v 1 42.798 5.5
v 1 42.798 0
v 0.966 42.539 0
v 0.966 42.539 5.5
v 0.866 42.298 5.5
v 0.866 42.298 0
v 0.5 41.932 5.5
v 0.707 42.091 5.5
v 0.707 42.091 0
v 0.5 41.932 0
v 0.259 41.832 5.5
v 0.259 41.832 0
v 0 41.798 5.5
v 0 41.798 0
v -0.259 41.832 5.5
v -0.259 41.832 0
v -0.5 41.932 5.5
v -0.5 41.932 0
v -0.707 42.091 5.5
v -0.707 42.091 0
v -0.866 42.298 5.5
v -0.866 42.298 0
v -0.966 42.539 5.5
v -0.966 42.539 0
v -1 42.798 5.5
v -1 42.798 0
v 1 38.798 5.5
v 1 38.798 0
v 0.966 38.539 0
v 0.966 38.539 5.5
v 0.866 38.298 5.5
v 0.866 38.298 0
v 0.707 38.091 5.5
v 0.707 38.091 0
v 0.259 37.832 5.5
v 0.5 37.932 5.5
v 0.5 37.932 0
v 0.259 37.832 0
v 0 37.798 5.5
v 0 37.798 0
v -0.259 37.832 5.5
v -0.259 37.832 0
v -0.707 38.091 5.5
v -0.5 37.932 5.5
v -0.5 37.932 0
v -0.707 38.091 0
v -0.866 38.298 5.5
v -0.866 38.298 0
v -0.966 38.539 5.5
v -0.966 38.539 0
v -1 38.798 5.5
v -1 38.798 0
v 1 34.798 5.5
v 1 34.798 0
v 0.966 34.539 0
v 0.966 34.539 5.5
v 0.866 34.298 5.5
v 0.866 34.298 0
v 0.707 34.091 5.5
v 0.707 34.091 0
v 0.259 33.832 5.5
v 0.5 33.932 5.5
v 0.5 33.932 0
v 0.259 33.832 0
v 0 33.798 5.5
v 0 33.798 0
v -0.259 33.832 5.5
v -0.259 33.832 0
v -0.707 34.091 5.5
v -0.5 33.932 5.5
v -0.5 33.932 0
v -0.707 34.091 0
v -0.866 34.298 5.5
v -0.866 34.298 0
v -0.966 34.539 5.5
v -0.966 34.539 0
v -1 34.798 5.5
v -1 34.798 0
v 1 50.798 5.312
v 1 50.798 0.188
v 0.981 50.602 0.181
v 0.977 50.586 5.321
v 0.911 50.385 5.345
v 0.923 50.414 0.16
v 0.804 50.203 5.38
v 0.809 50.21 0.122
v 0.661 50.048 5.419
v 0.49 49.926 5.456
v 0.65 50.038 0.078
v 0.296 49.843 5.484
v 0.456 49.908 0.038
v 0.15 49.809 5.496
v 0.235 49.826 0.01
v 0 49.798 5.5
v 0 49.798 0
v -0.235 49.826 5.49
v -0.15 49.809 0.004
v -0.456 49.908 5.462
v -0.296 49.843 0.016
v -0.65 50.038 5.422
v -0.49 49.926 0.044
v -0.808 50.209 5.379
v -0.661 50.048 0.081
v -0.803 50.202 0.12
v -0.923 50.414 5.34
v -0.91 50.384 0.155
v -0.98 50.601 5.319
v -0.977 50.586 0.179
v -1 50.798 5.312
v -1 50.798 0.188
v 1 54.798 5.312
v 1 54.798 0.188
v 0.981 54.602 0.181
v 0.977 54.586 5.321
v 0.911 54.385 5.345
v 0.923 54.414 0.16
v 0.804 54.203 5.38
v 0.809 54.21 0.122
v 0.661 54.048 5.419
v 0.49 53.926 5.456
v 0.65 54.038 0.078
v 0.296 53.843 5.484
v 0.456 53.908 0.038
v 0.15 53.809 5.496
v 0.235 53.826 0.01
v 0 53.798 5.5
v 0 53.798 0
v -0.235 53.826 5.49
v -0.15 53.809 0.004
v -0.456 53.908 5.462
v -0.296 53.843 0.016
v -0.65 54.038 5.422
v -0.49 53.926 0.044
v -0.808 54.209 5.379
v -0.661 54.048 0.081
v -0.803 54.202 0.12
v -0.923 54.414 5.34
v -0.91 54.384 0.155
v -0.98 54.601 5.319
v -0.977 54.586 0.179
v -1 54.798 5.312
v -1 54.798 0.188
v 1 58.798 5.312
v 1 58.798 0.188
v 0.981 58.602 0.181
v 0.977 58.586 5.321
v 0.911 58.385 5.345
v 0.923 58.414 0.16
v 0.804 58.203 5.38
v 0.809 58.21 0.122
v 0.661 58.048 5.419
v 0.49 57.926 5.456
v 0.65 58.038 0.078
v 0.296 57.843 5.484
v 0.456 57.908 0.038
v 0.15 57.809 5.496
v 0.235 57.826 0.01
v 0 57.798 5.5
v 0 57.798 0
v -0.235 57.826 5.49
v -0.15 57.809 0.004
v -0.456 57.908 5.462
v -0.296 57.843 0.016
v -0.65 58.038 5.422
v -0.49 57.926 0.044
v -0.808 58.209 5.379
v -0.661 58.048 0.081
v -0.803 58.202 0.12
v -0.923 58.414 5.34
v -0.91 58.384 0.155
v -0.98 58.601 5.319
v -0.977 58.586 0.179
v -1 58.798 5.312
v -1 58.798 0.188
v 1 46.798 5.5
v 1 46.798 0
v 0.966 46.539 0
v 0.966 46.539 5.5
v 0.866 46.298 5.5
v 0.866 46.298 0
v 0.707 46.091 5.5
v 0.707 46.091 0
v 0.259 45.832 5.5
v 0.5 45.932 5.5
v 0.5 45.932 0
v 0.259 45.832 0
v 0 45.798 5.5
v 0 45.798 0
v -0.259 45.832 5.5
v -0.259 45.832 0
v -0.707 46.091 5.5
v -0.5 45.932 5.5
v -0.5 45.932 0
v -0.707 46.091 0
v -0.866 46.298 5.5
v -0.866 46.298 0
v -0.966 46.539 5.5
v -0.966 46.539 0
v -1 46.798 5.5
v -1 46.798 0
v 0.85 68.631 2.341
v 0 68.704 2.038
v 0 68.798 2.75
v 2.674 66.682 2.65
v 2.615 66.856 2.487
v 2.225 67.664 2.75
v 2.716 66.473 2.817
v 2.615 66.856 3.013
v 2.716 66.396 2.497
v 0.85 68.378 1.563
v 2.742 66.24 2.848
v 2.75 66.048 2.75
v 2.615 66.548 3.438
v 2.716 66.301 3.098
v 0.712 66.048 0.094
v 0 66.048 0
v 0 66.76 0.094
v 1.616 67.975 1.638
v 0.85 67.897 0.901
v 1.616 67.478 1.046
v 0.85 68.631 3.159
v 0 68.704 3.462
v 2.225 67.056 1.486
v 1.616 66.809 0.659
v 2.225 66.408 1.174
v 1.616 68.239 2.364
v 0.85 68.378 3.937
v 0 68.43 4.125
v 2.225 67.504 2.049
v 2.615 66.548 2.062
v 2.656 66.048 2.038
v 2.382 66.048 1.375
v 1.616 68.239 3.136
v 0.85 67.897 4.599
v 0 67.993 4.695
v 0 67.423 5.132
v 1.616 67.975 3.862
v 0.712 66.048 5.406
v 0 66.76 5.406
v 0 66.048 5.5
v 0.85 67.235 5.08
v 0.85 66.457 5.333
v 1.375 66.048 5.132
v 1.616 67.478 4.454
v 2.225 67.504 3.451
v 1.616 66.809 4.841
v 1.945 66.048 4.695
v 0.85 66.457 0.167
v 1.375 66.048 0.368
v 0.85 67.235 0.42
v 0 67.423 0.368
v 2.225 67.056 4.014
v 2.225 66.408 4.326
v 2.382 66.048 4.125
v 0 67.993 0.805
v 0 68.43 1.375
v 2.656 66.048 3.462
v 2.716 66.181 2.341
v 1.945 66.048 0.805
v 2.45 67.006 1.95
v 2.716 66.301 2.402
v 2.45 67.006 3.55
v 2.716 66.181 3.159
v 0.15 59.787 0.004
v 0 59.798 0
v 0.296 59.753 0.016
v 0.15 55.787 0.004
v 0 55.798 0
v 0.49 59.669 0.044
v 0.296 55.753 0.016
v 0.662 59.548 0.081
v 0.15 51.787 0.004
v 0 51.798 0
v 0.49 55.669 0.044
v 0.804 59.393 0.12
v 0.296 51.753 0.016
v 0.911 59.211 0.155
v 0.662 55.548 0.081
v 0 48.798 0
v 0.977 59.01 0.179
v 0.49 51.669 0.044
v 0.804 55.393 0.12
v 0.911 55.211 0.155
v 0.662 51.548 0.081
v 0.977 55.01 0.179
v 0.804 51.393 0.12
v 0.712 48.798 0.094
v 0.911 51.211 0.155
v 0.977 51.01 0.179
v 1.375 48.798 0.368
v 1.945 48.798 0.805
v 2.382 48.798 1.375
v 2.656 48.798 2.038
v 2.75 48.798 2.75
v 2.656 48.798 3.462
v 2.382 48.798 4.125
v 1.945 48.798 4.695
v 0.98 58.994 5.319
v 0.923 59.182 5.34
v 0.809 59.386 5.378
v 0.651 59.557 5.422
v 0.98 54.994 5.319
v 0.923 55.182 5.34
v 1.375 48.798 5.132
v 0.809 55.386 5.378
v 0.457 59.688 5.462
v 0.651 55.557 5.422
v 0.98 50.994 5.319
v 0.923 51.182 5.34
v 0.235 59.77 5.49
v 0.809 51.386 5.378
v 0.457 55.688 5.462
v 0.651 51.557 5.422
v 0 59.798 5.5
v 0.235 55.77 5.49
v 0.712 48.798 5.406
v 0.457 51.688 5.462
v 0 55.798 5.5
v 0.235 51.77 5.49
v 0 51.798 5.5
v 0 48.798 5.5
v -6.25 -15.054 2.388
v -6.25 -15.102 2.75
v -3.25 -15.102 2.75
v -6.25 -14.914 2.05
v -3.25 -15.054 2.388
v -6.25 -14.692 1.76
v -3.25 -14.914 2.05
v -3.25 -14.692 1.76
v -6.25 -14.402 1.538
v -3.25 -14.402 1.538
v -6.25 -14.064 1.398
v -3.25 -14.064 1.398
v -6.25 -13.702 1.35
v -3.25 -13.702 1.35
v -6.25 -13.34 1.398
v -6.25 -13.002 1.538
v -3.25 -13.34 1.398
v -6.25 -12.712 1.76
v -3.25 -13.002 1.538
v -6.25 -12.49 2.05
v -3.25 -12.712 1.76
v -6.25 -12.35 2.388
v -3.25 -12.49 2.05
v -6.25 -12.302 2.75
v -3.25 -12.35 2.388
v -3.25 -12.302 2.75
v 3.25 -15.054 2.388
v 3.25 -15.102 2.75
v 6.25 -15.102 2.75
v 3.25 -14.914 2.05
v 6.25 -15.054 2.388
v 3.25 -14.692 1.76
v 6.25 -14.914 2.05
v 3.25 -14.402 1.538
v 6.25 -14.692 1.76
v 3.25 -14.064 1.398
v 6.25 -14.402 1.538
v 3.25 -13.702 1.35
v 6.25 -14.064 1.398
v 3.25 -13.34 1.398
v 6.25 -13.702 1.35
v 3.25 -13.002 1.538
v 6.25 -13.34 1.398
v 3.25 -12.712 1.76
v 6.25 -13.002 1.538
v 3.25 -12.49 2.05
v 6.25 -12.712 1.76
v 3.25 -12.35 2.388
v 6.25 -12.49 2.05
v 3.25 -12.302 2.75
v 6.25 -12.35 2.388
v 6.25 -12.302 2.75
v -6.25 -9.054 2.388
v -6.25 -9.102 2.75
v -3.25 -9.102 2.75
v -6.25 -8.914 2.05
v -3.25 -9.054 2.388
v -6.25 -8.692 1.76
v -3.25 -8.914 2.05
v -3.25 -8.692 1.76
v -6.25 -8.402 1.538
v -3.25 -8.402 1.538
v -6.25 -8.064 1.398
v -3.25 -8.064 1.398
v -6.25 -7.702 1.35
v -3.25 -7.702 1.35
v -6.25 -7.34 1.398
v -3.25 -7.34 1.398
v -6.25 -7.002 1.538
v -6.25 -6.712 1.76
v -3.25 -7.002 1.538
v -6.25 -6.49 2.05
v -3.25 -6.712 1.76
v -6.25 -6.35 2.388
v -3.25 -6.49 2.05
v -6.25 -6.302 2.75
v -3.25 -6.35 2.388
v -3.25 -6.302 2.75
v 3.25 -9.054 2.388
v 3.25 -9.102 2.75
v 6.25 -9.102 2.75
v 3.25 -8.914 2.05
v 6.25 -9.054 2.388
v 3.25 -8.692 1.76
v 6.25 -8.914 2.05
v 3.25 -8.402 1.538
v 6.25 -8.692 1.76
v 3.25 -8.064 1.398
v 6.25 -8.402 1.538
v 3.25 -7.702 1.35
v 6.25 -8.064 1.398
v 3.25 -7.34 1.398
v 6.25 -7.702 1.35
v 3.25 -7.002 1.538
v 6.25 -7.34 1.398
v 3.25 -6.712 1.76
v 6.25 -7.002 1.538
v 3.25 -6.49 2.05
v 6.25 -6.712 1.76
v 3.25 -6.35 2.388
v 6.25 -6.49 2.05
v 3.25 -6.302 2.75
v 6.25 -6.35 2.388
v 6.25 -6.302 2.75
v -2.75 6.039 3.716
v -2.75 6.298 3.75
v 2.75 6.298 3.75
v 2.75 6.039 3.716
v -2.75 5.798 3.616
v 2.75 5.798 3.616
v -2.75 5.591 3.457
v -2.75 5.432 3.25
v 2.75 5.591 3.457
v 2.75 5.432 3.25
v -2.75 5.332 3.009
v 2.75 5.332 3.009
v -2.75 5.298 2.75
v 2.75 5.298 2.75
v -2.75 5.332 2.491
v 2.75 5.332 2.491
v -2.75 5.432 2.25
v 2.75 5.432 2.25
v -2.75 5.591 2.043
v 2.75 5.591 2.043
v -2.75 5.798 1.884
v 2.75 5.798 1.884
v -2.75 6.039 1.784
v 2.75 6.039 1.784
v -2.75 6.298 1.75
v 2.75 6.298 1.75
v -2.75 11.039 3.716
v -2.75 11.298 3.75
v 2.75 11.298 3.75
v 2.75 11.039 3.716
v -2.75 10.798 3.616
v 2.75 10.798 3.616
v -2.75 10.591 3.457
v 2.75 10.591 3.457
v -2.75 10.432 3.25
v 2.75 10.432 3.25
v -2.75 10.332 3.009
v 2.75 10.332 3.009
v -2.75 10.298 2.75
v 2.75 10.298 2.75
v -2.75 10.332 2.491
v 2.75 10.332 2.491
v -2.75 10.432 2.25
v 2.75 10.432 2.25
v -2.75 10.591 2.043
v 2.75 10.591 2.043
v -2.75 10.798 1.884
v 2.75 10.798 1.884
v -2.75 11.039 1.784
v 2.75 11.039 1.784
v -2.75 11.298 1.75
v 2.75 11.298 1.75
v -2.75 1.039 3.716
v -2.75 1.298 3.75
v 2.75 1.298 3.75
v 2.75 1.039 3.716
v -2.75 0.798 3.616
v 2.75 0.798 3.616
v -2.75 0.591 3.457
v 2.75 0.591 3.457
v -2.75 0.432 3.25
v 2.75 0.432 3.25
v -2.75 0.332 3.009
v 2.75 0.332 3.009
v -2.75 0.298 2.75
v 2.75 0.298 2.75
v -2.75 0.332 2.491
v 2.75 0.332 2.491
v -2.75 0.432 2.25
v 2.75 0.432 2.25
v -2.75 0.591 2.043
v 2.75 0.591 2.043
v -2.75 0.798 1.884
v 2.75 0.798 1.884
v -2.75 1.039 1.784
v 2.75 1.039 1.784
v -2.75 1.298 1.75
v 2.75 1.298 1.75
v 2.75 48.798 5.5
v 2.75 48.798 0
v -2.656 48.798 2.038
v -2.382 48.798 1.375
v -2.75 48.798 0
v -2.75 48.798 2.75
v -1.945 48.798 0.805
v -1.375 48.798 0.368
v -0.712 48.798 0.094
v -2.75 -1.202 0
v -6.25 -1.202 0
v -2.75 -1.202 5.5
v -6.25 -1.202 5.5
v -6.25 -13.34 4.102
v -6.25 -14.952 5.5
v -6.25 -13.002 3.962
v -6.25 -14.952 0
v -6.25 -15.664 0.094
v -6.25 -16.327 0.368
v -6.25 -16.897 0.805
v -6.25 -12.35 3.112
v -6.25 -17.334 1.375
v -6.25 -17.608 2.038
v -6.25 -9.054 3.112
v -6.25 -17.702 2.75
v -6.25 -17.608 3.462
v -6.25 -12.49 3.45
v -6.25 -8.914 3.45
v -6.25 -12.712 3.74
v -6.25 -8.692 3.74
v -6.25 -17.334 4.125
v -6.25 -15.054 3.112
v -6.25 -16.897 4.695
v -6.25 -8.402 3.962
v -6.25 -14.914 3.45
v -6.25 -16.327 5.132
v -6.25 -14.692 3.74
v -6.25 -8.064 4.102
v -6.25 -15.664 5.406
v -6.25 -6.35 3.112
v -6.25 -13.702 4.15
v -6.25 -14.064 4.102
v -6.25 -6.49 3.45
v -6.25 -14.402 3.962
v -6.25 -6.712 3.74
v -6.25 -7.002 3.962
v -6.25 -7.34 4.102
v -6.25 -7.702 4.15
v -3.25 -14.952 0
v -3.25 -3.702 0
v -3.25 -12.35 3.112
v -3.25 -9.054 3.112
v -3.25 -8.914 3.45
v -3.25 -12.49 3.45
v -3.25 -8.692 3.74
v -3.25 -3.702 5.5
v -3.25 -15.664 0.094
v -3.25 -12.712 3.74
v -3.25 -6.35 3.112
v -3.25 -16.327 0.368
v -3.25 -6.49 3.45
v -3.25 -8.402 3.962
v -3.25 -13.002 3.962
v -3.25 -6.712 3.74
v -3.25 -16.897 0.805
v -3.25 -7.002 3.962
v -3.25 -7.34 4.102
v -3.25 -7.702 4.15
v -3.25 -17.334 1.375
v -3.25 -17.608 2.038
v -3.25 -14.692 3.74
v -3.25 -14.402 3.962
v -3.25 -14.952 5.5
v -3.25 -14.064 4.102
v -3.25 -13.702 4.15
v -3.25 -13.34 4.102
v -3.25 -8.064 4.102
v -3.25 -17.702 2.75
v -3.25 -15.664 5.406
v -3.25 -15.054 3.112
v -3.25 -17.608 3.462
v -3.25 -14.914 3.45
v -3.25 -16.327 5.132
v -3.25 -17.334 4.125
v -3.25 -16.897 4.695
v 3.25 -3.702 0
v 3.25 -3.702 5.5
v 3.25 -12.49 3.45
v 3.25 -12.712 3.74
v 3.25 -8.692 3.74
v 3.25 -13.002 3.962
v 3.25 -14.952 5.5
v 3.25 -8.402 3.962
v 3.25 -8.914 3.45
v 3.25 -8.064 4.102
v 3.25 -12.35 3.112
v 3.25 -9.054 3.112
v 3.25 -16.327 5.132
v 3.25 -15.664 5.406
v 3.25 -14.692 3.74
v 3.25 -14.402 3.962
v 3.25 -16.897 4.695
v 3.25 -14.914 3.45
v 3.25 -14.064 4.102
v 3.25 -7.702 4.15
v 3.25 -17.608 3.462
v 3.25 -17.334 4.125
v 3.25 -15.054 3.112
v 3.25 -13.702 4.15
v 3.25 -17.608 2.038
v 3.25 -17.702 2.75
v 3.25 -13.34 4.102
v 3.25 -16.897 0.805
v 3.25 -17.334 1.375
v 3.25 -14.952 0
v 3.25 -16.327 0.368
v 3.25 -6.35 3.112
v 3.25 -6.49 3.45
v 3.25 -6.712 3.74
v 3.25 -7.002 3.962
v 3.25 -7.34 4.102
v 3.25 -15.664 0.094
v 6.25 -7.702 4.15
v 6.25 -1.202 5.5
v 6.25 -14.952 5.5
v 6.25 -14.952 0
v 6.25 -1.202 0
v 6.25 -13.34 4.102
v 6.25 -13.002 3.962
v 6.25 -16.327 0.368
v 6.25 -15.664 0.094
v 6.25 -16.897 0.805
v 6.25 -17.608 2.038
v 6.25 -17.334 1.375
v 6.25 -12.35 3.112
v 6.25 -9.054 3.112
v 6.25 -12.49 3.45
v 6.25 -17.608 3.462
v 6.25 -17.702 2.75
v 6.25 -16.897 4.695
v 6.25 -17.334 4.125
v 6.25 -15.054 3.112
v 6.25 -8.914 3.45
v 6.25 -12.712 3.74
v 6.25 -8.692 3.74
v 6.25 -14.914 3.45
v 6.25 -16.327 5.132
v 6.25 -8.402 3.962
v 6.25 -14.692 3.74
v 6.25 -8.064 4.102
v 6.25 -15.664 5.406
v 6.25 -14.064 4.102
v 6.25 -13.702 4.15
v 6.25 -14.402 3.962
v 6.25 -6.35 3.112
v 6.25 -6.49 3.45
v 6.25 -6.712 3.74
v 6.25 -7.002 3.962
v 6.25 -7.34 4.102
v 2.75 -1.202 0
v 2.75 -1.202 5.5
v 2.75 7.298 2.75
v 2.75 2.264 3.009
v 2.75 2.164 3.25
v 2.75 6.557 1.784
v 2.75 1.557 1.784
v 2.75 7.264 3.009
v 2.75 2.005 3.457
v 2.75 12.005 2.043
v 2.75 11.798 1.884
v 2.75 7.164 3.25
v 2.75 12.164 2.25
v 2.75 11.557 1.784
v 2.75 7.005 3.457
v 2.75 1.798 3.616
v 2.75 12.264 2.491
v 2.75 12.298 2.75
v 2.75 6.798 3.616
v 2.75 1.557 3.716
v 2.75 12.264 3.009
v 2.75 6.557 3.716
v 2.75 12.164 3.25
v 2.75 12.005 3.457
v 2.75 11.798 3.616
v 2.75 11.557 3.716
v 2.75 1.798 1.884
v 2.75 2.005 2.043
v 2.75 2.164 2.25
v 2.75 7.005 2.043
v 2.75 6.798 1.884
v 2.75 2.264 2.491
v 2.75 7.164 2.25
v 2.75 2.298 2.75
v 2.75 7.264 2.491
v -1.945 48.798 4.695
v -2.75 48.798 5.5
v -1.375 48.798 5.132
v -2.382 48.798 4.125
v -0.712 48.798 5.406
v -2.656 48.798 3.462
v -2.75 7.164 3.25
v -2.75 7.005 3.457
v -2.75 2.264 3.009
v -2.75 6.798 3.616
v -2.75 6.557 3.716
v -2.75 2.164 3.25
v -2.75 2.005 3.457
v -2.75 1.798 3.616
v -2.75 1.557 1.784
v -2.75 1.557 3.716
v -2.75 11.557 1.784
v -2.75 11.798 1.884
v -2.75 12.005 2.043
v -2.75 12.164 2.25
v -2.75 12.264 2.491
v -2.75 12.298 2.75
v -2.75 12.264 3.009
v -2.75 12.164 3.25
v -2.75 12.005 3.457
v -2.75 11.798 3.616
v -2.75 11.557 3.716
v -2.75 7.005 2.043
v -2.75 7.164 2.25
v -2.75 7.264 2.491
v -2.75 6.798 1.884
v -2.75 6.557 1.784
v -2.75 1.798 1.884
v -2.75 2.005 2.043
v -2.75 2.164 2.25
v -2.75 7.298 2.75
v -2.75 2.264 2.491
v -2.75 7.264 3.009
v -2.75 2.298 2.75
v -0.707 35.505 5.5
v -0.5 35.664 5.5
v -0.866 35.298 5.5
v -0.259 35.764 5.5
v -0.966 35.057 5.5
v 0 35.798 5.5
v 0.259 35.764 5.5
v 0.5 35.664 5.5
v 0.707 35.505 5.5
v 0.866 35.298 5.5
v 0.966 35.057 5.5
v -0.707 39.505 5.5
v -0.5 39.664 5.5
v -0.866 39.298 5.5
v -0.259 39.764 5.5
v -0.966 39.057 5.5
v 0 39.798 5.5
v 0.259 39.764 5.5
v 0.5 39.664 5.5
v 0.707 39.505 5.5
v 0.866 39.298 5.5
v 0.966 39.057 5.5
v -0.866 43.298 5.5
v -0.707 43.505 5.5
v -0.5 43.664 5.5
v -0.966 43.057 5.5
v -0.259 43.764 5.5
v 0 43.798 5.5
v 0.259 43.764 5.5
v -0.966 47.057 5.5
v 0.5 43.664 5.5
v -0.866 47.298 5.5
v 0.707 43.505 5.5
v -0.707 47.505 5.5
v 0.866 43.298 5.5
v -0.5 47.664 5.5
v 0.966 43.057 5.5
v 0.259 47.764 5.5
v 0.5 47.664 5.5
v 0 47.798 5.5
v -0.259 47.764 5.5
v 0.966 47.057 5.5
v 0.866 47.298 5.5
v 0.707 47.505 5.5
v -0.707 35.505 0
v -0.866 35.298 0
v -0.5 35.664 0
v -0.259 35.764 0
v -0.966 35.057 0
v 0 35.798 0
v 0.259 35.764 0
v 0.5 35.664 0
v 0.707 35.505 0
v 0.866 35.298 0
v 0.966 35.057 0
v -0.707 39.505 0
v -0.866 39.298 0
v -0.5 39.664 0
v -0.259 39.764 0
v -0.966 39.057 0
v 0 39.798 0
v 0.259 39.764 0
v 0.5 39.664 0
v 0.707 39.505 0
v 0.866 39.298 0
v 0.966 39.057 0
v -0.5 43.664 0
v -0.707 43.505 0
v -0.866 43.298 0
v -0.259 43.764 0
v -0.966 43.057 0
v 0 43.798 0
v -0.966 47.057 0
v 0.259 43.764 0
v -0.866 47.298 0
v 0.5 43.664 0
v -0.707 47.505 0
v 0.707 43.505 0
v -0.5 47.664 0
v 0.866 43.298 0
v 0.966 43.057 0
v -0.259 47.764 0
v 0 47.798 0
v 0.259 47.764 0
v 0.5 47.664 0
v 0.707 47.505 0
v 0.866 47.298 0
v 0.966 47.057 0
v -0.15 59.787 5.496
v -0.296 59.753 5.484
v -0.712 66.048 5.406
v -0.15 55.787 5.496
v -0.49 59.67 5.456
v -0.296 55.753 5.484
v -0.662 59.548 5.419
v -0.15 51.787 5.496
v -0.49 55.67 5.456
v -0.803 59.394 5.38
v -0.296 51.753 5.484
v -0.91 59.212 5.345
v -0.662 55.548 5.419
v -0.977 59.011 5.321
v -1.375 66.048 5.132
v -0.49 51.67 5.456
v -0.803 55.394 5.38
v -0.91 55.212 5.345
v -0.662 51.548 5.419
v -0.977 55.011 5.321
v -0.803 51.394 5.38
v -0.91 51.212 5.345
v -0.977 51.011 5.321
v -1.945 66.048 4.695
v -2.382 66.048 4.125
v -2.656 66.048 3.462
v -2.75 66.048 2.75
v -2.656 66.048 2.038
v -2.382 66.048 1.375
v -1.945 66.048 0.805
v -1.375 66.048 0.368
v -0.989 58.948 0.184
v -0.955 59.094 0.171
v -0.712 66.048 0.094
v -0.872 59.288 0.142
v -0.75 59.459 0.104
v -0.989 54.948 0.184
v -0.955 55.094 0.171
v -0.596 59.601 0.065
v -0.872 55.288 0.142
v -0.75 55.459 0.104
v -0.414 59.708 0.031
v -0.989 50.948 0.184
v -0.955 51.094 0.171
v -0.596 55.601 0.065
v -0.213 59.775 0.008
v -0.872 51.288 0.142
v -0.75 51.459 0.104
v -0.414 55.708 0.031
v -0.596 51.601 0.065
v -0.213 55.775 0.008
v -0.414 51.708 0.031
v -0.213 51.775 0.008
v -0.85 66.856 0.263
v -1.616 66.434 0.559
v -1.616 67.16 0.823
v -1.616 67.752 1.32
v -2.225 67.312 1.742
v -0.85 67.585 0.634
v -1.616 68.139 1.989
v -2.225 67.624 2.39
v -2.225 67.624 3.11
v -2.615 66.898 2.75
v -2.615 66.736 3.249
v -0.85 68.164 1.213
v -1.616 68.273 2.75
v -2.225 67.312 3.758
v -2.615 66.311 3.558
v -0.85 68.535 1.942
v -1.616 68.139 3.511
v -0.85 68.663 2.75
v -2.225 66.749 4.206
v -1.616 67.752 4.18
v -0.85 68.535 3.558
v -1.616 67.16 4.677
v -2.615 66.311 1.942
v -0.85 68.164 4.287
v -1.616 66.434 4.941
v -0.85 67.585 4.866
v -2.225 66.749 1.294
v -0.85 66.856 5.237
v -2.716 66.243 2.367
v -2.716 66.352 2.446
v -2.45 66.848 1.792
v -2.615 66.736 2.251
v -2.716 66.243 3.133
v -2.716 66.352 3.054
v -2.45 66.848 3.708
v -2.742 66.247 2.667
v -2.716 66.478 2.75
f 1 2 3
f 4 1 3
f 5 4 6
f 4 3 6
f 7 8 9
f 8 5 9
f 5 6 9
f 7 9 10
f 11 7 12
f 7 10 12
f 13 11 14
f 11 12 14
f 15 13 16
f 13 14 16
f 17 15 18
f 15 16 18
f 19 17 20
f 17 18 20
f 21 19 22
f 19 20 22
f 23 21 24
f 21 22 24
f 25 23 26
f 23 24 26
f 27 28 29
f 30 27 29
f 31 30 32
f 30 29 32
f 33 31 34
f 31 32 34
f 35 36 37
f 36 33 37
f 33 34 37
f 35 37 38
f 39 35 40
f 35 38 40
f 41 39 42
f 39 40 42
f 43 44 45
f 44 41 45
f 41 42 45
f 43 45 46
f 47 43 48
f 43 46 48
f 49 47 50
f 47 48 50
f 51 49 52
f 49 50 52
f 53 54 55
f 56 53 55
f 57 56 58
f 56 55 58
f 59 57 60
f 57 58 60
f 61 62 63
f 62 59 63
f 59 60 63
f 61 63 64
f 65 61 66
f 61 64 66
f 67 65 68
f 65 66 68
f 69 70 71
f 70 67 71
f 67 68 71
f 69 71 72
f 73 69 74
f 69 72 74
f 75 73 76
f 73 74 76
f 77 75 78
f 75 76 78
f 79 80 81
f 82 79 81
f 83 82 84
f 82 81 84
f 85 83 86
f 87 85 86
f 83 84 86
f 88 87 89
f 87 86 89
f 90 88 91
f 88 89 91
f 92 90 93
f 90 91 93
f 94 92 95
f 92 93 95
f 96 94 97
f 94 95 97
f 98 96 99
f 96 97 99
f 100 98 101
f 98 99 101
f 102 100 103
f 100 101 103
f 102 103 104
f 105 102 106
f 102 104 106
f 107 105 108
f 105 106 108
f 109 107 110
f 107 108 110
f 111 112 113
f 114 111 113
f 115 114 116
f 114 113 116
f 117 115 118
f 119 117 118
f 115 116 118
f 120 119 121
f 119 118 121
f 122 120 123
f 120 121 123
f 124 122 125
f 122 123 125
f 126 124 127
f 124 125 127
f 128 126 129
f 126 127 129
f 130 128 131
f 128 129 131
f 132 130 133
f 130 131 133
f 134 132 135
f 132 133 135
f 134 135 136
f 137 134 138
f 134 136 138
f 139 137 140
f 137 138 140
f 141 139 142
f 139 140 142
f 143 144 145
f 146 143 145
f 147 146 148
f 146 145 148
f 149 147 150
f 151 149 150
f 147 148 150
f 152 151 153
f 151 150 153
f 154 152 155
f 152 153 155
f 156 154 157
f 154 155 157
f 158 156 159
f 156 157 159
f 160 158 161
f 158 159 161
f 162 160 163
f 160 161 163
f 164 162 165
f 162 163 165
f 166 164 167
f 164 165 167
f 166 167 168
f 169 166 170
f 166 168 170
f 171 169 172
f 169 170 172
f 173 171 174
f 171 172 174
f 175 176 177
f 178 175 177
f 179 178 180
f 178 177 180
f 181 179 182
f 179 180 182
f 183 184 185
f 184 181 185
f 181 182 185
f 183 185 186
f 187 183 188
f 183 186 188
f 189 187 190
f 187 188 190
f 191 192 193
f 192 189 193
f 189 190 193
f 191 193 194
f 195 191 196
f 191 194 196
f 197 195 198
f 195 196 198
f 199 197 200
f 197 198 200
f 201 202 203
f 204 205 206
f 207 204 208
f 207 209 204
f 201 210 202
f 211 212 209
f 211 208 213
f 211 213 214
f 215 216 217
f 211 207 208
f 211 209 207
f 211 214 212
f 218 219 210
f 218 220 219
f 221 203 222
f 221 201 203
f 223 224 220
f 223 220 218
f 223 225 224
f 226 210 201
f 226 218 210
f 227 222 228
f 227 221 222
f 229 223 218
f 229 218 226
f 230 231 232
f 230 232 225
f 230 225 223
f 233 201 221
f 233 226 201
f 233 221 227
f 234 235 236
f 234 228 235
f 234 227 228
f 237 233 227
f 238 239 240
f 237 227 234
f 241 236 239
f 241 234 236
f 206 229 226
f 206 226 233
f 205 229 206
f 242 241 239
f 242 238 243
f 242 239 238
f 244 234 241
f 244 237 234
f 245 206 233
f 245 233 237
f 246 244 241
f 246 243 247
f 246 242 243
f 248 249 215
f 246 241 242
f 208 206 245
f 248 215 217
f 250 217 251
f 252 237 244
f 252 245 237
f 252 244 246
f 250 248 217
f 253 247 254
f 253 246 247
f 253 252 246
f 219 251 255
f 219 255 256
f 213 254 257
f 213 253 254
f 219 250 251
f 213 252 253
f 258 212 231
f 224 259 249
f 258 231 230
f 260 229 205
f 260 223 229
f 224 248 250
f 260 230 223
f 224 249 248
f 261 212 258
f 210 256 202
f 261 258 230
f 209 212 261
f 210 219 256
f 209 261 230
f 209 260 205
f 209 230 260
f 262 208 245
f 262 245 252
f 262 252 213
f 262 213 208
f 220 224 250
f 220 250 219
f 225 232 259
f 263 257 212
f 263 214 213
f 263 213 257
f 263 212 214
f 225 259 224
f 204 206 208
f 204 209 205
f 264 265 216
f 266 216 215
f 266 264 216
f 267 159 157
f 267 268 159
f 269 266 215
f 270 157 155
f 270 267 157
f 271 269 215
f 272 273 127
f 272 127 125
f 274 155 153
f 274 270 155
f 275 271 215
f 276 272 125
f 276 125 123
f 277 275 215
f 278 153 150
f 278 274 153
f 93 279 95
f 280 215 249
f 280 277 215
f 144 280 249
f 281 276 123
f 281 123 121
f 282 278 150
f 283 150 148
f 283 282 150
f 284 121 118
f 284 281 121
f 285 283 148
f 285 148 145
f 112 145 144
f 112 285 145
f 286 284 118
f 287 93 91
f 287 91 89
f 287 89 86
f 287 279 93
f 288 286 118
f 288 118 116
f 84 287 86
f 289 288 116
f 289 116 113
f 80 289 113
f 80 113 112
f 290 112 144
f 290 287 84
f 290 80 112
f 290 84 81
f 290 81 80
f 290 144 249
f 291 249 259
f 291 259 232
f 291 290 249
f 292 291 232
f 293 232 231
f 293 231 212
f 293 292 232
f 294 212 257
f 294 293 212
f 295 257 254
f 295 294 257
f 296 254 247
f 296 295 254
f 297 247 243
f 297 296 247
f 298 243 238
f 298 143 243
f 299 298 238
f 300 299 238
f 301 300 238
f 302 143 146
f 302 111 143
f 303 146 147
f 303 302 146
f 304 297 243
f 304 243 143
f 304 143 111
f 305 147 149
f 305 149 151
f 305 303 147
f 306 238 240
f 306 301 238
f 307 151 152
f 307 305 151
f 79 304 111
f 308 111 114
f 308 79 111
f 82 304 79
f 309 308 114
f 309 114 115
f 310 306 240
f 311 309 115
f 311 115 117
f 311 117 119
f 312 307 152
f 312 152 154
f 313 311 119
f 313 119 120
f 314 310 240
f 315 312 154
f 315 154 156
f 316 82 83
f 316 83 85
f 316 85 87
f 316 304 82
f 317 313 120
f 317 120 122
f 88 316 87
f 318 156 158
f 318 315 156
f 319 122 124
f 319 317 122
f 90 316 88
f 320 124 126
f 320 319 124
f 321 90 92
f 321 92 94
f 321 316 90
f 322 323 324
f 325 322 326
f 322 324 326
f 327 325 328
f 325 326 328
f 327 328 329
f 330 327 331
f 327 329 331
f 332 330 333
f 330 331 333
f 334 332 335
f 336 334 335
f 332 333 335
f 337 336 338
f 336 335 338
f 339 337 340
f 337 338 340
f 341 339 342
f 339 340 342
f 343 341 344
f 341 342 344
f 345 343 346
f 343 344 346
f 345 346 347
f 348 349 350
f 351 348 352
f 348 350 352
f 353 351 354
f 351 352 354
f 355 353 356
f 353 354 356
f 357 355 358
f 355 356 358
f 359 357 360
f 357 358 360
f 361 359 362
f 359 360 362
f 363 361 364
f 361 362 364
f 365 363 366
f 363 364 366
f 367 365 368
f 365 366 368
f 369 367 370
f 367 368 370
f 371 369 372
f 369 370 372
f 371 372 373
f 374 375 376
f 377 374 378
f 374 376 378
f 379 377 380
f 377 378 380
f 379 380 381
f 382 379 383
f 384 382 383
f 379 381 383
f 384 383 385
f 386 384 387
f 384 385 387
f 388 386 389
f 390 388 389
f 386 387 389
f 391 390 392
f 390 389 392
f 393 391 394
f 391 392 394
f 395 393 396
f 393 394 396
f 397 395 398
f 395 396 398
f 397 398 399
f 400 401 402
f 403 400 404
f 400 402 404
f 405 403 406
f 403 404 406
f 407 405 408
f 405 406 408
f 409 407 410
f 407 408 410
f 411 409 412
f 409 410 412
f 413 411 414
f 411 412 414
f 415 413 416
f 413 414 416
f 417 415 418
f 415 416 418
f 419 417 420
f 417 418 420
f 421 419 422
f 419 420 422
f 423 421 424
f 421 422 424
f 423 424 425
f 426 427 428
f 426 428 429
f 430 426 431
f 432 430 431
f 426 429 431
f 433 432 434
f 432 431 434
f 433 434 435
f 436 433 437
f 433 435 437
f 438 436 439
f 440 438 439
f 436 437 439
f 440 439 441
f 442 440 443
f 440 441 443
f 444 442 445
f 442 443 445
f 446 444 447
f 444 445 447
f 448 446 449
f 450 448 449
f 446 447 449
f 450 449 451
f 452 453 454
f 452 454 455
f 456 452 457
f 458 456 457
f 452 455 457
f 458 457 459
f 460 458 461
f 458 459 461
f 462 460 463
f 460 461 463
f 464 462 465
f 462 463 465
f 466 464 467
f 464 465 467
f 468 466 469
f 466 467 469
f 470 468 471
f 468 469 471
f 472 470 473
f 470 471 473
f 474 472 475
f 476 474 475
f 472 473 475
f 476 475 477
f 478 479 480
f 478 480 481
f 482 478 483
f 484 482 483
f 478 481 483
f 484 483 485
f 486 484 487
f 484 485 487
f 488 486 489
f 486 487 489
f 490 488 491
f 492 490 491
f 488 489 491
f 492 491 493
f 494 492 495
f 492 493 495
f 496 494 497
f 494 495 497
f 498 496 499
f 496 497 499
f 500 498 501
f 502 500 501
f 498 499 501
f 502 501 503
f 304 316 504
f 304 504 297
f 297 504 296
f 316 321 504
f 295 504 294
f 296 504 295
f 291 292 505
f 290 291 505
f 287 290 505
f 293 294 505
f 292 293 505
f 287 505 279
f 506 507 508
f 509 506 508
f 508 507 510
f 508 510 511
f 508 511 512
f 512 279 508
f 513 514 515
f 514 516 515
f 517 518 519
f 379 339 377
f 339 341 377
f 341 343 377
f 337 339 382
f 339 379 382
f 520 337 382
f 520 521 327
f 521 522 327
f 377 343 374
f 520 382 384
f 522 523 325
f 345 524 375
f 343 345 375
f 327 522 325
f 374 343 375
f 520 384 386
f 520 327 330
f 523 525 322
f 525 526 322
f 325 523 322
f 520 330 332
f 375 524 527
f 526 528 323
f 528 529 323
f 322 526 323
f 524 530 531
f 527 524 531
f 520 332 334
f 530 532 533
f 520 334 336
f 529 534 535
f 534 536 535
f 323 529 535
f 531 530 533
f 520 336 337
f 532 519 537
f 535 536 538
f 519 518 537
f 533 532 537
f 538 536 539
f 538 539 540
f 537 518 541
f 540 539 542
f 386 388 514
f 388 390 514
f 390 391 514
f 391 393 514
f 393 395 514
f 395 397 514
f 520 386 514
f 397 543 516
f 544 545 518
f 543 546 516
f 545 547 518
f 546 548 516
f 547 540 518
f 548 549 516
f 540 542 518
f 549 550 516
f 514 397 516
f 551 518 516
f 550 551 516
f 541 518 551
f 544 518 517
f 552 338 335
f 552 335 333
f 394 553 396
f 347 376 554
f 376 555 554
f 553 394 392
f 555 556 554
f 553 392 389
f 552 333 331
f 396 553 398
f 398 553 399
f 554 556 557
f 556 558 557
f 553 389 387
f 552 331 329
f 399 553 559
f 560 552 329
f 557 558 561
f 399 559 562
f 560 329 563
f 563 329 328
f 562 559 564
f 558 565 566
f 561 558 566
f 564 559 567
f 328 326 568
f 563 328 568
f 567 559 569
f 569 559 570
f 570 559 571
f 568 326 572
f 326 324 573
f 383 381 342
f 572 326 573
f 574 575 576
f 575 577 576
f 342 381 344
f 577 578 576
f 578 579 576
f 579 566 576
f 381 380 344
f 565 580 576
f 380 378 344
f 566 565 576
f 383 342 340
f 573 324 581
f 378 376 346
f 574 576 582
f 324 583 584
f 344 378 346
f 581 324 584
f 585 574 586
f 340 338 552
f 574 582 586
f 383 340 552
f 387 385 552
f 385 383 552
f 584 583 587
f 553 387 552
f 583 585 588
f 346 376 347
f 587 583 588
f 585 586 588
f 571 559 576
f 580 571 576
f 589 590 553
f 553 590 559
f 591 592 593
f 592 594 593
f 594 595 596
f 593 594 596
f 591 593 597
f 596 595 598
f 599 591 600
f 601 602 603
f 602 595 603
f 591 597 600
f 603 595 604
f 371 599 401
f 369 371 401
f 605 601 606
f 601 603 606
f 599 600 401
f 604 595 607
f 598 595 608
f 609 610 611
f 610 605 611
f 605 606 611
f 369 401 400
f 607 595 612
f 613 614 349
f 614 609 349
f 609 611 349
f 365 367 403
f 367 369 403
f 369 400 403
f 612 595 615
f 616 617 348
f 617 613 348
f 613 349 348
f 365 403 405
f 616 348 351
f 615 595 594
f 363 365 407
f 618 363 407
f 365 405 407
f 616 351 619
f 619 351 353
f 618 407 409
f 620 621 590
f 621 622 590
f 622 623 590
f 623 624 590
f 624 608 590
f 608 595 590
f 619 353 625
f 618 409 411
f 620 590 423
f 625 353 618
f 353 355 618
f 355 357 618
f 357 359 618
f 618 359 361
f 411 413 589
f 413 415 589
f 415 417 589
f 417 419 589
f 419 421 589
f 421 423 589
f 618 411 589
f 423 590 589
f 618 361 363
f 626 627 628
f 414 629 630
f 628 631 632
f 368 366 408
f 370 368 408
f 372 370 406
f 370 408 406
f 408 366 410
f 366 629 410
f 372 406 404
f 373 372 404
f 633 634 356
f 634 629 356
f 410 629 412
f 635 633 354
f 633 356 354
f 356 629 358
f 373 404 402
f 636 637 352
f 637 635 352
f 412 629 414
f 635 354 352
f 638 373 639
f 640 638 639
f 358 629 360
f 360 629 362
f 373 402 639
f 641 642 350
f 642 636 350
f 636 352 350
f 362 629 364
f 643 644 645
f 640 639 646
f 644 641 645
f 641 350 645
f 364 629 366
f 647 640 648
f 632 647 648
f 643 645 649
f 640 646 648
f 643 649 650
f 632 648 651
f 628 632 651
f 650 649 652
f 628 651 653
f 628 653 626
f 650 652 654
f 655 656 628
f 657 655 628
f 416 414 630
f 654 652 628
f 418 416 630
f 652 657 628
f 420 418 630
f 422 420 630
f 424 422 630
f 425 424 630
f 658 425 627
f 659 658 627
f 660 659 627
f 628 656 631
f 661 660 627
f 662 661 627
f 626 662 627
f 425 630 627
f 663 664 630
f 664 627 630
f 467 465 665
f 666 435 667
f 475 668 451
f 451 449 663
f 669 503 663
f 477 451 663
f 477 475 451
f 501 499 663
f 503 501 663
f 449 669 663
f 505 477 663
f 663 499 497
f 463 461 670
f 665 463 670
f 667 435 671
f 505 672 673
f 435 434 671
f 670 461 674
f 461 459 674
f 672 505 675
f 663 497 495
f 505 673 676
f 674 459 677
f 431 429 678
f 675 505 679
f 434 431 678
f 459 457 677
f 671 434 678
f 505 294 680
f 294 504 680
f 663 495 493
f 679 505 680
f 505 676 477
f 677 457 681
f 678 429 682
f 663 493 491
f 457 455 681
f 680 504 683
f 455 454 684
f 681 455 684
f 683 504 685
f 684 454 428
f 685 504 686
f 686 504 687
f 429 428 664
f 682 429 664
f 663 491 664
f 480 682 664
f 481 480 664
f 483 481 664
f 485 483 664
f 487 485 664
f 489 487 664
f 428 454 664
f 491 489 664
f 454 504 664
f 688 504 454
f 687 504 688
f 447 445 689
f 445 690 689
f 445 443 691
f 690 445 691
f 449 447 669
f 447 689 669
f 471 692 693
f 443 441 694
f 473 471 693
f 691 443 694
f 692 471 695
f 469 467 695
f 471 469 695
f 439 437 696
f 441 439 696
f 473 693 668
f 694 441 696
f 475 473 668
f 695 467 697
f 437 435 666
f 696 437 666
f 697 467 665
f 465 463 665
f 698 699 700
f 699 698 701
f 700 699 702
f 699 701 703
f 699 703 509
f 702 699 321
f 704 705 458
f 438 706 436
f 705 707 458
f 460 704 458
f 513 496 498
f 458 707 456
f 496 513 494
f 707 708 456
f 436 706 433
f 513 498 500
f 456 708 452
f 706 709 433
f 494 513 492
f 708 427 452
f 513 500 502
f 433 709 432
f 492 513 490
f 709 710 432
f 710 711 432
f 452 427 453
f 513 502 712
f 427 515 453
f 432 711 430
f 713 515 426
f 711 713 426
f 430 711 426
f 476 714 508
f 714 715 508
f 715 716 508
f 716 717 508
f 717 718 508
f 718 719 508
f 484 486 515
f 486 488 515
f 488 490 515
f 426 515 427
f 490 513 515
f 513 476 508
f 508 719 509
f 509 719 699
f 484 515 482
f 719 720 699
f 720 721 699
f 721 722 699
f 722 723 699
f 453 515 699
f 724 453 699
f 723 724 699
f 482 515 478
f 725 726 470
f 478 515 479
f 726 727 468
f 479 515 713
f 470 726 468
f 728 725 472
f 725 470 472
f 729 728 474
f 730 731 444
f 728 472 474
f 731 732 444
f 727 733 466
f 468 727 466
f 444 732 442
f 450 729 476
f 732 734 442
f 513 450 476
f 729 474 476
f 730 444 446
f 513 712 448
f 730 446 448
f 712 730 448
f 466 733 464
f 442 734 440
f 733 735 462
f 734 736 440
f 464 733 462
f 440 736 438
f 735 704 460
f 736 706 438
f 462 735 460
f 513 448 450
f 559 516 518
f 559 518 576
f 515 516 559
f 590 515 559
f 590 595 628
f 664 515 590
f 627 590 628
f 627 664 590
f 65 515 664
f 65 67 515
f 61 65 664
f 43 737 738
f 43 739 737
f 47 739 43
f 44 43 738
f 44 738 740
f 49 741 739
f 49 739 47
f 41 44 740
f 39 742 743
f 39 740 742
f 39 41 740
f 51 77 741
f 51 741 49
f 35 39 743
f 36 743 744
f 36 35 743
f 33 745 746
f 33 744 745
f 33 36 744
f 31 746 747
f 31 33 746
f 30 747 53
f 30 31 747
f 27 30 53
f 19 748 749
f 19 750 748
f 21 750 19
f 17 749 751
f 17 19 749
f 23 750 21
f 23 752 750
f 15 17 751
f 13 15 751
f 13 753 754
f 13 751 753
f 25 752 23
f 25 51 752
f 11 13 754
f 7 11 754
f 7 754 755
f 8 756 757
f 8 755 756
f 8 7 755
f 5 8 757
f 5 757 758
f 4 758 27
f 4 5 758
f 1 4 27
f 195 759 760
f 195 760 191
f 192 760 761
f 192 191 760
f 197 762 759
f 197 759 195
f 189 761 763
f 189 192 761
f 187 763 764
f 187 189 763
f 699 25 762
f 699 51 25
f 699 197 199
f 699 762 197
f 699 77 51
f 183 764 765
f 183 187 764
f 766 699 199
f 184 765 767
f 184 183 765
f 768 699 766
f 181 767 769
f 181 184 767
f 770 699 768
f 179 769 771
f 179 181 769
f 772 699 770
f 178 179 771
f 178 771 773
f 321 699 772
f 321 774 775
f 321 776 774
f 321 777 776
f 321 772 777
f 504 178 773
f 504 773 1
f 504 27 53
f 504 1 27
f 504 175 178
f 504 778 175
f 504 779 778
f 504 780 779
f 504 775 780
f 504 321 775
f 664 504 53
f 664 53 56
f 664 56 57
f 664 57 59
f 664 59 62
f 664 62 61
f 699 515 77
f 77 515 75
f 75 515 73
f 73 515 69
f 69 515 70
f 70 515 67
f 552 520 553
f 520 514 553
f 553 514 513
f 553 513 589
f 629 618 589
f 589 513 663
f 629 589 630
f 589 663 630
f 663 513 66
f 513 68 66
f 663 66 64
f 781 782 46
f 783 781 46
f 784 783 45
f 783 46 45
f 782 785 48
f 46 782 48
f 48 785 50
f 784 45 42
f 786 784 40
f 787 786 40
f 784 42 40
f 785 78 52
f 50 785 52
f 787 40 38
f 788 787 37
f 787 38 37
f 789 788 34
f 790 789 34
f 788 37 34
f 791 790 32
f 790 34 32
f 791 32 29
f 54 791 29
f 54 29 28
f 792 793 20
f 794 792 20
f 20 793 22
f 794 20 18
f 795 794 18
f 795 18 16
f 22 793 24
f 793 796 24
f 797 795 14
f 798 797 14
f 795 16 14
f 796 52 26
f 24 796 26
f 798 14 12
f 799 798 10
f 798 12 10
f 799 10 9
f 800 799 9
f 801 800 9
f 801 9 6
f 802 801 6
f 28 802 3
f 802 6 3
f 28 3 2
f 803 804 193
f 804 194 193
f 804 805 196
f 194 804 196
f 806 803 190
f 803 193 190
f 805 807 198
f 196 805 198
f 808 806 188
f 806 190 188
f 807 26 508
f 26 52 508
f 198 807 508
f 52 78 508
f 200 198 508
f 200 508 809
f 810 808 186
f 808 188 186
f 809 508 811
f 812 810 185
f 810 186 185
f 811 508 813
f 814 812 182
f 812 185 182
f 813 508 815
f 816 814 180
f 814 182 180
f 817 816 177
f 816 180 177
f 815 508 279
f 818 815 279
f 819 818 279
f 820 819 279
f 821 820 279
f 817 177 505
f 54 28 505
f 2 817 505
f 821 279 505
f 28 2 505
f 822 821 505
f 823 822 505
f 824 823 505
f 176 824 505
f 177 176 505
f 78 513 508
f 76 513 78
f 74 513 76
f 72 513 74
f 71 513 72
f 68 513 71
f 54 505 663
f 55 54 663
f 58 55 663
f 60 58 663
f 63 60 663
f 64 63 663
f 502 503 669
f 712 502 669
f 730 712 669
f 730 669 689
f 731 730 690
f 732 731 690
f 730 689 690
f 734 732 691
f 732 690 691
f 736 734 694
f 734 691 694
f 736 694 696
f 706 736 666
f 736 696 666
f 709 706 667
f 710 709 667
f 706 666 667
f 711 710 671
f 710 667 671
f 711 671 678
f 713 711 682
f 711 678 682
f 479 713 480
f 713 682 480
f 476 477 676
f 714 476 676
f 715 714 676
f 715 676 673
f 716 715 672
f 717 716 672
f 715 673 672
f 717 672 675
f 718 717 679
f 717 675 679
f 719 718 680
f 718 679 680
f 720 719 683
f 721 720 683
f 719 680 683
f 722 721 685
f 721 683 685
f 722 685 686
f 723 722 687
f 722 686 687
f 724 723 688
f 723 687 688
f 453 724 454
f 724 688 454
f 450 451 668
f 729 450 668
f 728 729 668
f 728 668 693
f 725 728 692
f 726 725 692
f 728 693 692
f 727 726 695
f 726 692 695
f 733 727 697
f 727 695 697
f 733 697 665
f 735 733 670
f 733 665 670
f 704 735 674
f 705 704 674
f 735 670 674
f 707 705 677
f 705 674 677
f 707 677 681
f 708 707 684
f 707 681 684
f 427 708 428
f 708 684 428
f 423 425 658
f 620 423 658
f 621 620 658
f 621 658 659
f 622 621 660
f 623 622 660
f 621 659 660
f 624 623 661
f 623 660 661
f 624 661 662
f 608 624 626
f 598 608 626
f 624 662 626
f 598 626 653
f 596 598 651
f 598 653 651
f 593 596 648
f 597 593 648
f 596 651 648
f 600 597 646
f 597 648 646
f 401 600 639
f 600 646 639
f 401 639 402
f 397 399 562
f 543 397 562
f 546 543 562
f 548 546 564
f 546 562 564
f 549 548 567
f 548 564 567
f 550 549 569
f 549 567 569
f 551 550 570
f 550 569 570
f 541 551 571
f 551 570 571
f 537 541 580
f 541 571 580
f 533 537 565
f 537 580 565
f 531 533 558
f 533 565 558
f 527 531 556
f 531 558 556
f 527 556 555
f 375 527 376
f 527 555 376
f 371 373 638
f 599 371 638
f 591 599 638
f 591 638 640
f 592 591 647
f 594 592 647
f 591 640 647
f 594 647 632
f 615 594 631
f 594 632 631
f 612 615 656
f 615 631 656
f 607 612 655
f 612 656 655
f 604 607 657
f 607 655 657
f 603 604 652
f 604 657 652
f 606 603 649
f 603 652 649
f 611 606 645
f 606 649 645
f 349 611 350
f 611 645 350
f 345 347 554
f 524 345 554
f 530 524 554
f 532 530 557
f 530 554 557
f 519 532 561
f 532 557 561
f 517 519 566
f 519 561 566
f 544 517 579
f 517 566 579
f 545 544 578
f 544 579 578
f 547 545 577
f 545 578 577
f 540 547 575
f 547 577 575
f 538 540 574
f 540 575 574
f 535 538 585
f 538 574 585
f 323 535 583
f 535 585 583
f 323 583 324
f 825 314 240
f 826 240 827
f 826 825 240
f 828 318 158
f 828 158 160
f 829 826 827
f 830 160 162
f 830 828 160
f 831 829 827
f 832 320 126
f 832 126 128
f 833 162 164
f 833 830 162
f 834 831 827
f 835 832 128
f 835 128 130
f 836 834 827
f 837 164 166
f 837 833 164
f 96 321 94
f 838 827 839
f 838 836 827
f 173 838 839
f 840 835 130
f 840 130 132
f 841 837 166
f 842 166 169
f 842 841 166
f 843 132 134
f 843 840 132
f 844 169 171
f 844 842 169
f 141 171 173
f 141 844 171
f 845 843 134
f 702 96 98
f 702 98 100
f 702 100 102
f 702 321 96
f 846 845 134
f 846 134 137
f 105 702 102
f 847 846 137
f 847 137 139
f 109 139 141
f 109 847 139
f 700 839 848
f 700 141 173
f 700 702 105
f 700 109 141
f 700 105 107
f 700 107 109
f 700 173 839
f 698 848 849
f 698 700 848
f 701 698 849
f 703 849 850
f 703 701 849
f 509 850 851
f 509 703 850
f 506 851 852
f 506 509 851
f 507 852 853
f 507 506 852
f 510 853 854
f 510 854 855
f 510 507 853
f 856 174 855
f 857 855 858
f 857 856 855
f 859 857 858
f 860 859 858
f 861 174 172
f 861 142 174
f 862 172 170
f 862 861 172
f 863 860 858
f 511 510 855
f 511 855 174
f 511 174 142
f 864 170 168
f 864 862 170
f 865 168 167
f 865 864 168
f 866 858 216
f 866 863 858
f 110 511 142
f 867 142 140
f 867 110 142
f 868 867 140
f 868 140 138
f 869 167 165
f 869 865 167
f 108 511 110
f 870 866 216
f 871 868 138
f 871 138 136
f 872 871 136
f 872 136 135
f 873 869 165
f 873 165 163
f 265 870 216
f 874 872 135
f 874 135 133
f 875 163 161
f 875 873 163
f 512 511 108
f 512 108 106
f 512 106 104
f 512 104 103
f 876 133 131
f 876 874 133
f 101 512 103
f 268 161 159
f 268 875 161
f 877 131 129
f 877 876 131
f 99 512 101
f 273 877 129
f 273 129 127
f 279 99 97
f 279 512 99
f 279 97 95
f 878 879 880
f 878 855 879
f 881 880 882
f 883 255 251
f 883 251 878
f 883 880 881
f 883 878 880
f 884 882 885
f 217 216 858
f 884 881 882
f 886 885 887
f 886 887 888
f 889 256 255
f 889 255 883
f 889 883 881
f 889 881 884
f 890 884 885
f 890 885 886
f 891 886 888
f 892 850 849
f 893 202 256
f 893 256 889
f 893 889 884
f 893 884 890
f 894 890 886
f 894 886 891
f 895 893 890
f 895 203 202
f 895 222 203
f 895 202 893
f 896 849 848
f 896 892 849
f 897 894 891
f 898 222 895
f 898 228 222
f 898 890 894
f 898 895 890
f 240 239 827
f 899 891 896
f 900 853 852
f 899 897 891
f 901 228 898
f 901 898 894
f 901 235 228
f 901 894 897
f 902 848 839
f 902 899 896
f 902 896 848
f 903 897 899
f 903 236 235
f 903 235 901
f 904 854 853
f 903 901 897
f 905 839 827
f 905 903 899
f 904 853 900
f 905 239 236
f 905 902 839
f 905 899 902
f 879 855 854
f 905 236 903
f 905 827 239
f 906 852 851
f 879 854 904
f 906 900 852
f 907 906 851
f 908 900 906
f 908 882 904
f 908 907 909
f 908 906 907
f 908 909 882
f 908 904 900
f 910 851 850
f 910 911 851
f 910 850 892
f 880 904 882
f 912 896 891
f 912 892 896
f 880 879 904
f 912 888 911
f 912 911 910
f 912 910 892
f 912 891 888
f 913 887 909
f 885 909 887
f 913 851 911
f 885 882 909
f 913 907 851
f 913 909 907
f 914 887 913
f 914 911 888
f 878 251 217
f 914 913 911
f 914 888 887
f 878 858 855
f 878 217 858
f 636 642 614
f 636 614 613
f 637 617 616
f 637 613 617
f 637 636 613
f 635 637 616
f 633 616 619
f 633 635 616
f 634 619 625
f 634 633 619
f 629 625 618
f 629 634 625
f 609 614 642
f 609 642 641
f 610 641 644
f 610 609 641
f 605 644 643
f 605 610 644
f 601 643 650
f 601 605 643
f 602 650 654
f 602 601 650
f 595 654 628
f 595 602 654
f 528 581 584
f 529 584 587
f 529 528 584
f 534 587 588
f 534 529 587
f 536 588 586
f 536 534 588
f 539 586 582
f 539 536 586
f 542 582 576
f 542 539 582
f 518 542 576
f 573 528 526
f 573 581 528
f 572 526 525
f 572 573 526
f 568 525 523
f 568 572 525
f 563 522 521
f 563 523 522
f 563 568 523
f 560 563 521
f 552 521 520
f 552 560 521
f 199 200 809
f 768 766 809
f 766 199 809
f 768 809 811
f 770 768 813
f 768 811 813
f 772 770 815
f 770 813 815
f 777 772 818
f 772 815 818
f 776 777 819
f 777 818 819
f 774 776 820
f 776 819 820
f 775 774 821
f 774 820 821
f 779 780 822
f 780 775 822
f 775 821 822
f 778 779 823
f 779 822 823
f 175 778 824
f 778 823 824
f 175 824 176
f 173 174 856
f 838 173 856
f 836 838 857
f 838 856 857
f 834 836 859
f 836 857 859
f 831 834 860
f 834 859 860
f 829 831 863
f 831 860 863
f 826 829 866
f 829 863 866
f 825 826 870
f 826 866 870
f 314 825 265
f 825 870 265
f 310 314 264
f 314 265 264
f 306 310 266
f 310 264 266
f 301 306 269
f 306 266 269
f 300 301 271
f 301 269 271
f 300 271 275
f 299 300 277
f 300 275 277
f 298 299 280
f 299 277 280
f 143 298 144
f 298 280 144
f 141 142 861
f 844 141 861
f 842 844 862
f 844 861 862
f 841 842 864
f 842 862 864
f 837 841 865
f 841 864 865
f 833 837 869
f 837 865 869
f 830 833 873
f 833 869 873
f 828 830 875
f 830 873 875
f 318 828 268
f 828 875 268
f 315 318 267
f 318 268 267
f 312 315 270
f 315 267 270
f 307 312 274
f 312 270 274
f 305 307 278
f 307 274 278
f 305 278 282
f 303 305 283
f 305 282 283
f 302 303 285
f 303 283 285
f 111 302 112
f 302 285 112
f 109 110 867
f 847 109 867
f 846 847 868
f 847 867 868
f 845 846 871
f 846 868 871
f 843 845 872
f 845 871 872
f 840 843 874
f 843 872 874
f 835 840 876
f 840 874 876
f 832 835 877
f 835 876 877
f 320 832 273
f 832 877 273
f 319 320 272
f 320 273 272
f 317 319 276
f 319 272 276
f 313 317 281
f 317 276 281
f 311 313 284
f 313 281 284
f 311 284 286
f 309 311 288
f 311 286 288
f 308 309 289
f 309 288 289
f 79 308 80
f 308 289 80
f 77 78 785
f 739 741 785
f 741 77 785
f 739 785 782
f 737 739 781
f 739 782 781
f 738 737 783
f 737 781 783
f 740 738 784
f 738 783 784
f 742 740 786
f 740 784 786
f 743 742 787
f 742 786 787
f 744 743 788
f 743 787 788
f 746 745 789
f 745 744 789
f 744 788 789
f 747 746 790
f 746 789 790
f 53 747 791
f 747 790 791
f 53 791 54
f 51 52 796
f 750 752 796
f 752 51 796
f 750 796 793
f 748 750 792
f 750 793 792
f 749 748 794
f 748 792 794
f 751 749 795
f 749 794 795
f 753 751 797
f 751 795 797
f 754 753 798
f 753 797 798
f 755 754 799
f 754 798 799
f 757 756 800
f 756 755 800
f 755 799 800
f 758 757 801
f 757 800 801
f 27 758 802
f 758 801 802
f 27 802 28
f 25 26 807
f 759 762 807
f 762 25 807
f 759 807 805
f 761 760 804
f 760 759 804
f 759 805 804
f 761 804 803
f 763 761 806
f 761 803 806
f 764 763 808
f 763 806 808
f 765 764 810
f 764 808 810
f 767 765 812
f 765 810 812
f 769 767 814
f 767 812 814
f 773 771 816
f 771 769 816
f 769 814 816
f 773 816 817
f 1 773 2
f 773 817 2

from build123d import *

# Parameters (mm, degrees)
BOSS_EXTRUDE1_DEPTH = 5.5
SKETCH2_R           = 1
CUT_EXTRUDE1_DEPTH  = 5.5
SKETCH3_R           = 1.4
CUT_EXTRUDE2_DEPTH  = 20
SKETCH4_R           = 2.75
BOSS_EXTRUDE2_DEPTH = 20
FILLET1_R           = 2.75
FILLET2_R           = 2.75
SKETCH6_R           = 1
CUT_EXTRUDE4_DEPTH  = 10


with BuildPart() as part:
    # Sketch1 → Boss-Extrude1 (new body)
    with BuildSketch(Plane.XY):
        Polygon((-6.25, -1.20199904), (-6.25, -17.70199904), (-3.25, -17.70199904), (-3.25, -3.70199904), (3.25, -3.70199904), (3.25, -17.70199904), (6.25, -17.70199904), (6.25, -1.20199904), (2.75, -1.20199904), (2.75, 48.79800096), (-2.75, 48.79800096), (-2.75, -1.20199904), align=None)
    extrude(amount=BOSS_EXTRUDE1_DEPTH)

    # Sketch2 → Cut-Extrude1 (cut)
    with BuildSketch(Plane(origin=(2.75, 0, 0), x_dir=(0, 0, -1), z_dir=(1, 0, 0))):
        with Locations((-2.75, 1.29800096)):
            Circle(SKETCH2_R)
        with Locations((-2.75, 6.29800096)):
            Circle(SKETCH2_R)
        with Locations((-2.75, 11.29800096)):
            Circle(SKETCH2_R)
    extrude(amount=-CUT_EXTRUDE1_DEPTH, mode=Mode.SUBTRACT)

    # Sketch3 → Cut-Extrude2 (cut)
    with BuildSketch(Plane(origin=(6.25, 0, 0), x_dir=(0, 0, -1), z_dir=(1, 0, 0))):
        with Locations(Location((-2.75, -7.70199904, 0), (0, 0, 90))):
            Circle(SKETCH3_R)
        with Locations(Location((-2.75, -13.70199904, 0), (0, 0, 90))):
            Circle(SKETCH3_R)
    extrude(amount=-CUT_EXTRUDE2_DEPTH, mode=Mode.SUBTRACT)

    # Sketch4 → Boss-Extrude2 (add)
    with BuildSketch(Plane(origin=(0, 48.79800096, 0), x_dir=(1, 0, 0), z_dir=(0, 1, 0))):
        with Locations(Location((0, -2.75, 0), (0, 0, 270))):
            Circle(SKETCH4_R)
    extrude(amount=BOSS_EXTRUDE2_DEPTH)

    # Fillet1
    fillet1_edges = [part.edges().sort_by_distance(p)[0] for p in [
        (0, 68.79800096, 0),
    ]]
    fillet(fillet1_edges, radius=FILLET1_R)

    # Fillet2
    fillet2_edges = [part.edges().sort_by_distance(p)[0] for p in [
        (4.75, -17.70199904, 5.5),
        (4.75, -17.70199904, 0),
        (-4.75, -17.70199904, 0),
        (-4.75, -17.70199904, 5.5),
    ]]
    fillet(fillet2_edges, radius=FILLET2_R - 0.0001)  # a hair under: the kernel refuses the full size

    # Sketch6 → Cut-Extrude4 (cut)
    with BuildSketch(Plane(origin=(0, 0, 0), x_dir=(-1, 0, 0), z_dir=(0, 0, -1))):
        with Locations((0, 46.79800096)):
            Circle(SKETCH6_R)
        with Locations((0, 42.79800096)):
            Circle(SKETCH6_R)
        with Locations((0, 38.79800096)):
            Circle(SKETCH6_R)
        with Locations((0, 34.79800096)):
            Circle(SKETCH6_R)
        with Locations((0, 50.79800096)):
            Circle(SKETCH6_R)
        with Locations((0, 54.79800096)):
            Circle(SKETCH6_R)
        with Locations((0, 58.79800096)):
            Circle(SKETCH6_R)
    extrude(amount=-CUT_EXTRUDE4_DEPTH, mode=Mode.SUBTRACT)


solid = part.part
